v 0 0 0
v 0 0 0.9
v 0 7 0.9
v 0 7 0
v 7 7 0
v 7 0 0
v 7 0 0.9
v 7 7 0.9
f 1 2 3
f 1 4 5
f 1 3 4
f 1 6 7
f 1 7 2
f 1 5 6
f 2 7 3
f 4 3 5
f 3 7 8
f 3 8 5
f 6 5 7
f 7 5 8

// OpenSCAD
/* Warning, this is a very basic generator with a lot of approximation 
input data : [VQFN, MYX, 7x7x0.9mm, 48, , A, C04-00507A]
generated by com.zoubworld.electronics.cad.model3d.Basic
Date : Sun Feb 15 10:50:48 CET 2026
*/

//body
color("black")
translate([0,0,0])
cube([7.0,7.0,0.9], center=false);
